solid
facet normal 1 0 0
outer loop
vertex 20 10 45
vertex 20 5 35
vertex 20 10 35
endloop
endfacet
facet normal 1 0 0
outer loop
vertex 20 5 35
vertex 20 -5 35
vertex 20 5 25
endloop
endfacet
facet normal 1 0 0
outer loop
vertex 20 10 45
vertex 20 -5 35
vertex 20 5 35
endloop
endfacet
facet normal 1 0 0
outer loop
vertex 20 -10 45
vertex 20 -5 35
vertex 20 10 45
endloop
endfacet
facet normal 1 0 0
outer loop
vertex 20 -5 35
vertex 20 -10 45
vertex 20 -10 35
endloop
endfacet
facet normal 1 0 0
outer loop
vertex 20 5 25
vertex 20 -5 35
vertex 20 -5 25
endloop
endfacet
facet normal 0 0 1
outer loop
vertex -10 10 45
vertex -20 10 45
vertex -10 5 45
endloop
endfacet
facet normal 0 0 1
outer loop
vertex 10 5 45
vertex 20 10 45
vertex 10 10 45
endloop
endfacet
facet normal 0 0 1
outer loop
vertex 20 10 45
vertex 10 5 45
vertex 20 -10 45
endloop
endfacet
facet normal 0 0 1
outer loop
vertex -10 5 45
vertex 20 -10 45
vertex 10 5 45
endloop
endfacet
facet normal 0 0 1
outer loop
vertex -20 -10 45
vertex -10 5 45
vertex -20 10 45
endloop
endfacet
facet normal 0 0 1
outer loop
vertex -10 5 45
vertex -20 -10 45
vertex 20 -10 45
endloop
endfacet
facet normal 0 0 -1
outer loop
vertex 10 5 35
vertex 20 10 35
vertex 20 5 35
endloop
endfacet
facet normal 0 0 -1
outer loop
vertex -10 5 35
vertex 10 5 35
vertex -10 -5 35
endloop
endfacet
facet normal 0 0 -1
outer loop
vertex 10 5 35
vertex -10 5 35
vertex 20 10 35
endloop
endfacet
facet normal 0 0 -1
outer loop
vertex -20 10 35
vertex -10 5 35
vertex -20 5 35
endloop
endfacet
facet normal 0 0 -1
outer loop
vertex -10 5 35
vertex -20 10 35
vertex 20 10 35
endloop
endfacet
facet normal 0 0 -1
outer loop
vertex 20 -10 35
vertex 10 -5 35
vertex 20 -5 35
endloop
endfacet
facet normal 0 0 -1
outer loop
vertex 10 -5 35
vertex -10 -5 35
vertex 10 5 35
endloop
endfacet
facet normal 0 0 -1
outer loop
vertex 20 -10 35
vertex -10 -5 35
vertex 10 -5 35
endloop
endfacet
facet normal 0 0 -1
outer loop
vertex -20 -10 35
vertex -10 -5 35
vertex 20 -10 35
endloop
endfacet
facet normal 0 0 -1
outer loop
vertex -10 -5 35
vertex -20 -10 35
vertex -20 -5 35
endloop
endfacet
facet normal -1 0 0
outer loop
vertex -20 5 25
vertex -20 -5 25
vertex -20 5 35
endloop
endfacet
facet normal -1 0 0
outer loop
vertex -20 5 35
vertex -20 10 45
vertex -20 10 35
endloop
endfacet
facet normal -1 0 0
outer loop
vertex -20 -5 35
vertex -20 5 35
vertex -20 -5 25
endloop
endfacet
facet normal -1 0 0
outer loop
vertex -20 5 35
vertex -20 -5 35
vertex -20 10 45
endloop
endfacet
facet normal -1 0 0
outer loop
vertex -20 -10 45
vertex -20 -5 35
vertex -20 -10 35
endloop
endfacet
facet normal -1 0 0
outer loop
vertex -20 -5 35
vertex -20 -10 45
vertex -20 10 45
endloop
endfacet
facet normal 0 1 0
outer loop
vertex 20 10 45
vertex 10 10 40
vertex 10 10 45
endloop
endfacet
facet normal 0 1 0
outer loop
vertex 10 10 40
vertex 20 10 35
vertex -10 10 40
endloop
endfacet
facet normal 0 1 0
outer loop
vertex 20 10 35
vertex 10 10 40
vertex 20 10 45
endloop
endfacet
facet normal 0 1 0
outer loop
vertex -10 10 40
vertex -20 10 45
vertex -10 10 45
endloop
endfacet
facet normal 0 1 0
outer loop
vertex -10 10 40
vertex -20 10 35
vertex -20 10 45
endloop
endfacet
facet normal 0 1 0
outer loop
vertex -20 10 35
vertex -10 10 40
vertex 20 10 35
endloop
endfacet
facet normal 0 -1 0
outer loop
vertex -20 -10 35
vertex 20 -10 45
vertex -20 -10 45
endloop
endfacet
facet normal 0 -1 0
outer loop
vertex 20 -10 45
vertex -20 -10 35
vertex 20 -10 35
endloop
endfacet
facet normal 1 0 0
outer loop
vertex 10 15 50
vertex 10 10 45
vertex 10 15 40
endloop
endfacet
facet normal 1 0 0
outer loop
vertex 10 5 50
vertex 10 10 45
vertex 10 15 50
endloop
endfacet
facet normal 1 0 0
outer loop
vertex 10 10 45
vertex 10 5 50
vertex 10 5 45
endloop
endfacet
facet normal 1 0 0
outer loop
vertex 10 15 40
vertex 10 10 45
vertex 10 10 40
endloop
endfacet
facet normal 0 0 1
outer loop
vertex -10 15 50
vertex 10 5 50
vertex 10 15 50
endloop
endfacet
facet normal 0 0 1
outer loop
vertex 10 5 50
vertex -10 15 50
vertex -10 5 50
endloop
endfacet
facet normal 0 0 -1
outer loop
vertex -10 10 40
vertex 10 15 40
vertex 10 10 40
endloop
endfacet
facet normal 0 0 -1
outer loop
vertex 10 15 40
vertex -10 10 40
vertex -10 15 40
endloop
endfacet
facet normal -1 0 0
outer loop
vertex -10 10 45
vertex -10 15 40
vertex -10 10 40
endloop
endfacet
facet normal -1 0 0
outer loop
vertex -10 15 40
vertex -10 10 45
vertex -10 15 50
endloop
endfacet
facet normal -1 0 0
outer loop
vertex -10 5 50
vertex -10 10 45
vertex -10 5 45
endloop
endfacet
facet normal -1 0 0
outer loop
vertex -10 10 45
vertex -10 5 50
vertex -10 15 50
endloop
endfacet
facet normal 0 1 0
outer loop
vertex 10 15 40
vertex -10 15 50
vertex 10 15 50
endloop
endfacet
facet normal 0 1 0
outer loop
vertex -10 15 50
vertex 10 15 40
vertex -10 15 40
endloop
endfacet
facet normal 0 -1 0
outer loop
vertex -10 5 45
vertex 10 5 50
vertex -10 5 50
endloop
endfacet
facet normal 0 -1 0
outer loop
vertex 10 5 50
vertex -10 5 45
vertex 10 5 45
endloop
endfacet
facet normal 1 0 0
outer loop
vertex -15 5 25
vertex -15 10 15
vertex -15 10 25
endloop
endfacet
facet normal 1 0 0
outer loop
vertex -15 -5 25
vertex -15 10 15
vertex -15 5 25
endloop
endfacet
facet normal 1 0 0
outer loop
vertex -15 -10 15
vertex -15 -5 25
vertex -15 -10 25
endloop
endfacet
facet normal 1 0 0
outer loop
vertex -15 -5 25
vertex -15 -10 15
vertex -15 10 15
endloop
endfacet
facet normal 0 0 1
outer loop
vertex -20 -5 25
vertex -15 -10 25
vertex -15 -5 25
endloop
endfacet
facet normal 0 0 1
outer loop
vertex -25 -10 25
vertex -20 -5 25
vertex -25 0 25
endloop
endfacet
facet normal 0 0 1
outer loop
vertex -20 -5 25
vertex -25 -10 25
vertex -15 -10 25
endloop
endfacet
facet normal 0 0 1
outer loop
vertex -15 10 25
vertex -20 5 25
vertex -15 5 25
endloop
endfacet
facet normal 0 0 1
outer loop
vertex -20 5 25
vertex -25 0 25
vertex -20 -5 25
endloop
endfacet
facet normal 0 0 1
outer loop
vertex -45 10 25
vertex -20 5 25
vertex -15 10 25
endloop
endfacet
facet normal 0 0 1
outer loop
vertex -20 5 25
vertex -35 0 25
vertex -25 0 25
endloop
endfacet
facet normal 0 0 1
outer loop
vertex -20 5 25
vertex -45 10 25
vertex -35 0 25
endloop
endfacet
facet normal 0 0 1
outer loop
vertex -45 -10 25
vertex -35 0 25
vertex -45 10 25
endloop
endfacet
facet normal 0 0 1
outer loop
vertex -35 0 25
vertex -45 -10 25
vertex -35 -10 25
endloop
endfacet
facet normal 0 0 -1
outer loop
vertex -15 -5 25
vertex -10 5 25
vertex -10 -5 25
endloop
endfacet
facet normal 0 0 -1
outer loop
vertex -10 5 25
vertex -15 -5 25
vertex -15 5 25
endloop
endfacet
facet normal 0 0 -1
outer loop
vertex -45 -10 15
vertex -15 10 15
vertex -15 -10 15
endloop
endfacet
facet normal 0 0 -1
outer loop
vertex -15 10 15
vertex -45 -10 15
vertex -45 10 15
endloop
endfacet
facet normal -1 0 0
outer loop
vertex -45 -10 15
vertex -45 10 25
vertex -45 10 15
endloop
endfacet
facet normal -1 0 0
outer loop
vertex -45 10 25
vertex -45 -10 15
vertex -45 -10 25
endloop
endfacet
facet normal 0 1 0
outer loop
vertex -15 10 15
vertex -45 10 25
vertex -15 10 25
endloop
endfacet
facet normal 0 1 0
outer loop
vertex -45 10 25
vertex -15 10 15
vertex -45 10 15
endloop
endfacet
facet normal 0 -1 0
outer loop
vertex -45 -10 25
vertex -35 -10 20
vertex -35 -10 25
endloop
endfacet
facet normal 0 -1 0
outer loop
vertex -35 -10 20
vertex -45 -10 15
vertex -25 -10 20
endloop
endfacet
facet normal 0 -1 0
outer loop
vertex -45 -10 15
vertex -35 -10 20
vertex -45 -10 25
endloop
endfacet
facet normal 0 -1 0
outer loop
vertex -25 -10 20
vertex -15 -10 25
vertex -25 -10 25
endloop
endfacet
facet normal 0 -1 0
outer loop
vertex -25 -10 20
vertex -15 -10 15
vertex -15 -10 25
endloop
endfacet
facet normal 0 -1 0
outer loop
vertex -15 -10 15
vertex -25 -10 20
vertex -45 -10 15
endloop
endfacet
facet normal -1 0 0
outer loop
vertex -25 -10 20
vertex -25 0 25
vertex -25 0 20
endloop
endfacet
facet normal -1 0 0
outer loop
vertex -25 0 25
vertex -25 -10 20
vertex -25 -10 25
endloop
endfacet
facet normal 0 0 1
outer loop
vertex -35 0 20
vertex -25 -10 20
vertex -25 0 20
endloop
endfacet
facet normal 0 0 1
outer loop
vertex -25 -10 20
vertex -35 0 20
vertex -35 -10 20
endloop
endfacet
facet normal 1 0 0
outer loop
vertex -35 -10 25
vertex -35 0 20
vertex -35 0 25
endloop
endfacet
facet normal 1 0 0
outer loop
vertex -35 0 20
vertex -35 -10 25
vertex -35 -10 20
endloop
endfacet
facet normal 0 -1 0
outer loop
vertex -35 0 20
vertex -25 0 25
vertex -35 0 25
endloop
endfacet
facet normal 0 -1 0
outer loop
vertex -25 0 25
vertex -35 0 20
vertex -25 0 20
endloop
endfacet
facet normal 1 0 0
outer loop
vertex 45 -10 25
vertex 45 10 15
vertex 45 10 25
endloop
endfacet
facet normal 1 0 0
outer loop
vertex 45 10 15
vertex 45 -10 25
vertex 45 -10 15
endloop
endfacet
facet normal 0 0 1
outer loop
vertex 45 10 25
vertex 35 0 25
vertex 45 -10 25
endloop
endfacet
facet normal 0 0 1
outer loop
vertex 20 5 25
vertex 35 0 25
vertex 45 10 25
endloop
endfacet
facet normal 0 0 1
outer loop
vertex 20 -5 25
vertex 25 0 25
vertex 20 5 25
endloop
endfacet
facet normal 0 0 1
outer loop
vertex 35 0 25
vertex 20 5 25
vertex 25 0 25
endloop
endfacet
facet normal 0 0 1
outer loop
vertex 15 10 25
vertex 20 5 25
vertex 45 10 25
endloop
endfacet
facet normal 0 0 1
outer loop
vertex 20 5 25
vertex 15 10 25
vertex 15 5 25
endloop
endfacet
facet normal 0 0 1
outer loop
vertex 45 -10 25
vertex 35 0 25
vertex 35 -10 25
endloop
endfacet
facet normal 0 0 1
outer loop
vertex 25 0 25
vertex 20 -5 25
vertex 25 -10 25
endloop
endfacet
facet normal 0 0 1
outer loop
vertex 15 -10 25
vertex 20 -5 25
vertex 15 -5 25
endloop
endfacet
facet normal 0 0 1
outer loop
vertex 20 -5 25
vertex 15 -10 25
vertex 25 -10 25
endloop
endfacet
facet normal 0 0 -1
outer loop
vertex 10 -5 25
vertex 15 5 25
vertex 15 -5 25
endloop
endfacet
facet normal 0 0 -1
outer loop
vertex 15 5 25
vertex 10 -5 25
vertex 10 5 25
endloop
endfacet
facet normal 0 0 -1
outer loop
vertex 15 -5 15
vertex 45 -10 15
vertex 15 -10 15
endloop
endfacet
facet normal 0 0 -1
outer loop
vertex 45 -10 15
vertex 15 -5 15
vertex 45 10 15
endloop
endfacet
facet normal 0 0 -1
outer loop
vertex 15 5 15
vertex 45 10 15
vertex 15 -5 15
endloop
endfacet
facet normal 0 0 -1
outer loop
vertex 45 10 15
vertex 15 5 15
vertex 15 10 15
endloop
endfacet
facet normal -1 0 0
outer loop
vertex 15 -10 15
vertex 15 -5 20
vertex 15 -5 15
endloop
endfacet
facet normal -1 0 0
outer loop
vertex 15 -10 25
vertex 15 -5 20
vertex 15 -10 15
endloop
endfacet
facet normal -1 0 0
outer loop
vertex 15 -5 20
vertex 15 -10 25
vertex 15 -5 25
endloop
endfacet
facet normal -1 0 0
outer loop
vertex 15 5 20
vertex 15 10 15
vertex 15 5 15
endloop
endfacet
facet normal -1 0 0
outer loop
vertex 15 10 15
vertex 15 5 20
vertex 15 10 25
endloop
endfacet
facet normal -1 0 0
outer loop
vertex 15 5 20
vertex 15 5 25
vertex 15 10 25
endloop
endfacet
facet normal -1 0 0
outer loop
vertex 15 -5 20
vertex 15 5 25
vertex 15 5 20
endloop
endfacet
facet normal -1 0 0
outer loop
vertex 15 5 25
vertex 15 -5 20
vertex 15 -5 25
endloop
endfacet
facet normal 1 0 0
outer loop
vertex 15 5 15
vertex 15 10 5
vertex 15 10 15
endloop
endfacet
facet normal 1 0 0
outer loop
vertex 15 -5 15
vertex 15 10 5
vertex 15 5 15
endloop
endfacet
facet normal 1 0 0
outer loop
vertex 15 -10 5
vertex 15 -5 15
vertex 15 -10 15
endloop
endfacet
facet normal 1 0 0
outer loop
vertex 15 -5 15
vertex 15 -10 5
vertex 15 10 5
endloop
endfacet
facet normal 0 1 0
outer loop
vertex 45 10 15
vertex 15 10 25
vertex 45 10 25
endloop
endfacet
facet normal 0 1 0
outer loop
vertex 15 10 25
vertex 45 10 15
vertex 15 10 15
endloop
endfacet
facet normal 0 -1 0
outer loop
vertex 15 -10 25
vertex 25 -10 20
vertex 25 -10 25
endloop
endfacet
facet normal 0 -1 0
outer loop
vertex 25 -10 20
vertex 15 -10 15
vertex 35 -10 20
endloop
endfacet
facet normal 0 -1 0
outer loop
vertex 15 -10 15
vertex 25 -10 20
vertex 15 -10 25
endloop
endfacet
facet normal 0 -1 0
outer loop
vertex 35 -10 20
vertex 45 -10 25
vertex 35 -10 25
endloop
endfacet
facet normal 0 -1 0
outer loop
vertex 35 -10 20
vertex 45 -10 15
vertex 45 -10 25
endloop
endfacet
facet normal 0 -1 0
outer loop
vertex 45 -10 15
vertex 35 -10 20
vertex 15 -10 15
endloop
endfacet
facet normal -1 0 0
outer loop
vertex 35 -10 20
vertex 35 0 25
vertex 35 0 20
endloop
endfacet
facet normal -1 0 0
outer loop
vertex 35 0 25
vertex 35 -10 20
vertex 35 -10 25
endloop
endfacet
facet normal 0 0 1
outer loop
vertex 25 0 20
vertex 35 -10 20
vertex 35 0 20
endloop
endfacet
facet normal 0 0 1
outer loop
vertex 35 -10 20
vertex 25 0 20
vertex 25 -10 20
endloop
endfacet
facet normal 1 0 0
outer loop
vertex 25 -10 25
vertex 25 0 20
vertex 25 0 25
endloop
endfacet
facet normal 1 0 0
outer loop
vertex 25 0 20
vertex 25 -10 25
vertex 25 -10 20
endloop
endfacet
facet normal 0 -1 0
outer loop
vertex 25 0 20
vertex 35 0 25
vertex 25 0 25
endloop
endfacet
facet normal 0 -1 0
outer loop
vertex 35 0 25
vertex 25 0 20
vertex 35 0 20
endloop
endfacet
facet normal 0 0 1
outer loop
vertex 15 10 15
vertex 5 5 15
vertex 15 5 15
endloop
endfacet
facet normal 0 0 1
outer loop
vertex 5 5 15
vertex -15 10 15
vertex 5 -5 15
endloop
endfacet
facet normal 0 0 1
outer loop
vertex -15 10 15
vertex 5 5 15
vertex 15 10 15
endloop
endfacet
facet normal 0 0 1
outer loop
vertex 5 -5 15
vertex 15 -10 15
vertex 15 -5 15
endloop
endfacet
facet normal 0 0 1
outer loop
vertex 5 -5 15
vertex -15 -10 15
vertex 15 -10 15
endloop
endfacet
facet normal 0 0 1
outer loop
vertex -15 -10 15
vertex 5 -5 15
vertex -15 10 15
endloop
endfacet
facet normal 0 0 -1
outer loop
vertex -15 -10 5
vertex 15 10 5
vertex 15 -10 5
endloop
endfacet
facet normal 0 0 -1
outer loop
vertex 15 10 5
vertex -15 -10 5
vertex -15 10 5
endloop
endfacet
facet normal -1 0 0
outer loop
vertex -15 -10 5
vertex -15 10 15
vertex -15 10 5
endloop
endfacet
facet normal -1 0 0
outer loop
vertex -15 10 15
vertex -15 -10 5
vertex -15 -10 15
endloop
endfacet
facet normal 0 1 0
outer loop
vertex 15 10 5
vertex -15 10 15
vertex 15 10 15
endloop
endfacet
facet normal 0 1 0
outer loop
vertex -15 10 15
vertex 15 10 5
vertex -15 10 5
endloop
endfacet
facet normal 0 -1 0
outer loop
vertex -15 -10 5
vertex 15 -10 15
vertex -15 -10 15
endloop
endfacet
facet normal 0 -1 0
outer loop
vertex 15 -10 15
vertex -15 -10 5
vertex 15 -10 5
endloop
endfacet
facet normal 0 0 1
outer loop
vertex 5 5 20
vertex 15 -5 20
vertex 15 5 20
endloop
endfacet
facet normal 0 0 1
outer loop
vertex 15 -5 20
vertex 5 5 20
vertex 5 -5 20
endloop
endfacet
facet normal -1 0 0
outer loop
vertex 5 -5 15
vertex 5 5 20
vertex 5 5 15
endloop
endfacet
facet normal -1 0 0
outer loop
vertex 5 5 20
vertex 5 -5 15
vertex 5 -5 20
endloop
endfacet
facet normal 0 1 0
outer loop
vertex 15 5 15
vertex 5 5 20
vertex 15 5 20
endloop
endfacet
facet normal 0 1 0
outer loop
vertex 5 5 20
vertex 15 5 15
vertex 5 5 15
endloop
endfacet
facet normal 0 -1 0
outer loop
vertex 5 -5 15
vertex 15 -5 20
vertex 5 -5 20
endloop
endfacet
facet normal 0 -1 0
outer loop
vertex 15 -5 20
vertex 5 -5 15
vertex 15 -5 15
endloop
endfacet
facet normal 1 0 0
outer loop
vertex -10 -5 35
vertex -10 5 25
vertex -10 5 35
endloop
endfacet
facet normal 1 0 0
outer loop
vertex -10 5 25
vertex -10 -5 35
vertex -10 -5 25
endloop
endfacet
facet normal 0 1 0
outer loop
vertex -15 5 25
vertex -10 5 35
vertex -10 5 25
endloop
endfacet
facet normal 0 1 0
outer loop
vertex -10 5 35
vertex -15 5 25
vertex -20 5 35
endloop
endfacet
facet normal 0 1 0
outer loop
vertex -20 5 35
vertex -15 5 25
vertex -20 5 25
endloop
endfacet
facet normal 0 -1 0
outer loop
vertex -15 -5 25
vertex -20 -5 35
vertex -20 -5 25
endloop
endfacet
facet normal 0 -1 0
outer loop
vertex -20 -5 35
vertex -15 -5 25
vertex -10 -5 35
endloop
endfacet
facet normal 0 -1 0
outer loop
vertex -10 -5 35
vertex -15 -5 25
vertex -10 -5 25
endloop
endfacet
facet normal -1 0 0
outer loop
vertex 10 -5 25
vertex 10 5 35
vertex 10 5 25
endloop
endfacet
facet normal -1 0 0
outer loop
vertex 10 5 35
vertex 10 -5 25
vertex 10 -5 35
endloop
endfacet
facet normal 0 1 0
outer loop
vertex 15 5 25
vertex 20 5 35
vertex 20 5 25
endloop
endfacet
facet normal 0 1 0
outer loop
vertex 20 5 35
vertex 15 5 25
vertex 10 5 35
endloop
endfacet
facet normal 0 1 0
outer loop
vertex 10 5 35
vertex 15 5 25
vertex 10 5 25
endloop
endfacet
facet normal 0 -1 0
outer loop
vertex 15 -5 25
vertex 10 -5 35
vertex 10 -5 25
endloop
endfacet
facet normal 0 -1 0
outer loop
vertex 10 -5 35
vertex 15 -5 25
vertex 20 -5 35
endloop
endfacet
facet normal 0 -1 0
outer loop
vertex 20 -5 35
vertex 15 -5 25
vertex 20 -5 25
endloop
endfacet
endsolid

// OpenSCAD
// Define dimensions for each component
module central_block() {
    // Original T-shape with a solid rectangular prism and a smaller perpendicular protrusion
    union() {
        // Main rectangular prism
        cube([40, 20, 10], center = true);
        // Perpendicular protrusion
        translate([0, 10, 5])
            cube([20, 10, 10], center = true);
    }
}

module side_block() {
    // Simplified step-like profile with a flat surface and a smaller rectangular cutout
    difference() {
        // Main rectangular block
        cube([30, 20, 10], center = true);
        // Smaller rectangular cutout
        translate([0, -5, 5])
            cube([10, 10, 10], center = true);
    }
}

module connector_block() {
    // Asymmetrical profile with an offset protrusion
    union() {
        // Main rectangular block
        cube([30, 20, 10], center = true);
        // Offset protrusion
        translate([10, 0, 5]) // Adjusted to be offset from the center
            cube([10, 10, 10], center = true);
    }
}

module spacer_block() {
    // Uniform rectangular prism with flat surfaces
    cube([10, 10, 10], center = true);
}

// Assemble the model
module assembly() {
    // Layer 1: Central block
    translate([0, 0, 40])
        central_block();

    // Layer 2: Spacer blocks
    translate([-15, 0, 30])
        spacer_block();
    translate([15, 0, 30])
        spacer_block();

    // Layer 3: Side blocks
    translate([-30, 0, 20])
        side_block();
    translate([30, 0, 20])
        side_block();

    // Layer 4: Connector block
    translate([0, 0, 10])
        connector_block();
}

// Render the assembly
assembly();
